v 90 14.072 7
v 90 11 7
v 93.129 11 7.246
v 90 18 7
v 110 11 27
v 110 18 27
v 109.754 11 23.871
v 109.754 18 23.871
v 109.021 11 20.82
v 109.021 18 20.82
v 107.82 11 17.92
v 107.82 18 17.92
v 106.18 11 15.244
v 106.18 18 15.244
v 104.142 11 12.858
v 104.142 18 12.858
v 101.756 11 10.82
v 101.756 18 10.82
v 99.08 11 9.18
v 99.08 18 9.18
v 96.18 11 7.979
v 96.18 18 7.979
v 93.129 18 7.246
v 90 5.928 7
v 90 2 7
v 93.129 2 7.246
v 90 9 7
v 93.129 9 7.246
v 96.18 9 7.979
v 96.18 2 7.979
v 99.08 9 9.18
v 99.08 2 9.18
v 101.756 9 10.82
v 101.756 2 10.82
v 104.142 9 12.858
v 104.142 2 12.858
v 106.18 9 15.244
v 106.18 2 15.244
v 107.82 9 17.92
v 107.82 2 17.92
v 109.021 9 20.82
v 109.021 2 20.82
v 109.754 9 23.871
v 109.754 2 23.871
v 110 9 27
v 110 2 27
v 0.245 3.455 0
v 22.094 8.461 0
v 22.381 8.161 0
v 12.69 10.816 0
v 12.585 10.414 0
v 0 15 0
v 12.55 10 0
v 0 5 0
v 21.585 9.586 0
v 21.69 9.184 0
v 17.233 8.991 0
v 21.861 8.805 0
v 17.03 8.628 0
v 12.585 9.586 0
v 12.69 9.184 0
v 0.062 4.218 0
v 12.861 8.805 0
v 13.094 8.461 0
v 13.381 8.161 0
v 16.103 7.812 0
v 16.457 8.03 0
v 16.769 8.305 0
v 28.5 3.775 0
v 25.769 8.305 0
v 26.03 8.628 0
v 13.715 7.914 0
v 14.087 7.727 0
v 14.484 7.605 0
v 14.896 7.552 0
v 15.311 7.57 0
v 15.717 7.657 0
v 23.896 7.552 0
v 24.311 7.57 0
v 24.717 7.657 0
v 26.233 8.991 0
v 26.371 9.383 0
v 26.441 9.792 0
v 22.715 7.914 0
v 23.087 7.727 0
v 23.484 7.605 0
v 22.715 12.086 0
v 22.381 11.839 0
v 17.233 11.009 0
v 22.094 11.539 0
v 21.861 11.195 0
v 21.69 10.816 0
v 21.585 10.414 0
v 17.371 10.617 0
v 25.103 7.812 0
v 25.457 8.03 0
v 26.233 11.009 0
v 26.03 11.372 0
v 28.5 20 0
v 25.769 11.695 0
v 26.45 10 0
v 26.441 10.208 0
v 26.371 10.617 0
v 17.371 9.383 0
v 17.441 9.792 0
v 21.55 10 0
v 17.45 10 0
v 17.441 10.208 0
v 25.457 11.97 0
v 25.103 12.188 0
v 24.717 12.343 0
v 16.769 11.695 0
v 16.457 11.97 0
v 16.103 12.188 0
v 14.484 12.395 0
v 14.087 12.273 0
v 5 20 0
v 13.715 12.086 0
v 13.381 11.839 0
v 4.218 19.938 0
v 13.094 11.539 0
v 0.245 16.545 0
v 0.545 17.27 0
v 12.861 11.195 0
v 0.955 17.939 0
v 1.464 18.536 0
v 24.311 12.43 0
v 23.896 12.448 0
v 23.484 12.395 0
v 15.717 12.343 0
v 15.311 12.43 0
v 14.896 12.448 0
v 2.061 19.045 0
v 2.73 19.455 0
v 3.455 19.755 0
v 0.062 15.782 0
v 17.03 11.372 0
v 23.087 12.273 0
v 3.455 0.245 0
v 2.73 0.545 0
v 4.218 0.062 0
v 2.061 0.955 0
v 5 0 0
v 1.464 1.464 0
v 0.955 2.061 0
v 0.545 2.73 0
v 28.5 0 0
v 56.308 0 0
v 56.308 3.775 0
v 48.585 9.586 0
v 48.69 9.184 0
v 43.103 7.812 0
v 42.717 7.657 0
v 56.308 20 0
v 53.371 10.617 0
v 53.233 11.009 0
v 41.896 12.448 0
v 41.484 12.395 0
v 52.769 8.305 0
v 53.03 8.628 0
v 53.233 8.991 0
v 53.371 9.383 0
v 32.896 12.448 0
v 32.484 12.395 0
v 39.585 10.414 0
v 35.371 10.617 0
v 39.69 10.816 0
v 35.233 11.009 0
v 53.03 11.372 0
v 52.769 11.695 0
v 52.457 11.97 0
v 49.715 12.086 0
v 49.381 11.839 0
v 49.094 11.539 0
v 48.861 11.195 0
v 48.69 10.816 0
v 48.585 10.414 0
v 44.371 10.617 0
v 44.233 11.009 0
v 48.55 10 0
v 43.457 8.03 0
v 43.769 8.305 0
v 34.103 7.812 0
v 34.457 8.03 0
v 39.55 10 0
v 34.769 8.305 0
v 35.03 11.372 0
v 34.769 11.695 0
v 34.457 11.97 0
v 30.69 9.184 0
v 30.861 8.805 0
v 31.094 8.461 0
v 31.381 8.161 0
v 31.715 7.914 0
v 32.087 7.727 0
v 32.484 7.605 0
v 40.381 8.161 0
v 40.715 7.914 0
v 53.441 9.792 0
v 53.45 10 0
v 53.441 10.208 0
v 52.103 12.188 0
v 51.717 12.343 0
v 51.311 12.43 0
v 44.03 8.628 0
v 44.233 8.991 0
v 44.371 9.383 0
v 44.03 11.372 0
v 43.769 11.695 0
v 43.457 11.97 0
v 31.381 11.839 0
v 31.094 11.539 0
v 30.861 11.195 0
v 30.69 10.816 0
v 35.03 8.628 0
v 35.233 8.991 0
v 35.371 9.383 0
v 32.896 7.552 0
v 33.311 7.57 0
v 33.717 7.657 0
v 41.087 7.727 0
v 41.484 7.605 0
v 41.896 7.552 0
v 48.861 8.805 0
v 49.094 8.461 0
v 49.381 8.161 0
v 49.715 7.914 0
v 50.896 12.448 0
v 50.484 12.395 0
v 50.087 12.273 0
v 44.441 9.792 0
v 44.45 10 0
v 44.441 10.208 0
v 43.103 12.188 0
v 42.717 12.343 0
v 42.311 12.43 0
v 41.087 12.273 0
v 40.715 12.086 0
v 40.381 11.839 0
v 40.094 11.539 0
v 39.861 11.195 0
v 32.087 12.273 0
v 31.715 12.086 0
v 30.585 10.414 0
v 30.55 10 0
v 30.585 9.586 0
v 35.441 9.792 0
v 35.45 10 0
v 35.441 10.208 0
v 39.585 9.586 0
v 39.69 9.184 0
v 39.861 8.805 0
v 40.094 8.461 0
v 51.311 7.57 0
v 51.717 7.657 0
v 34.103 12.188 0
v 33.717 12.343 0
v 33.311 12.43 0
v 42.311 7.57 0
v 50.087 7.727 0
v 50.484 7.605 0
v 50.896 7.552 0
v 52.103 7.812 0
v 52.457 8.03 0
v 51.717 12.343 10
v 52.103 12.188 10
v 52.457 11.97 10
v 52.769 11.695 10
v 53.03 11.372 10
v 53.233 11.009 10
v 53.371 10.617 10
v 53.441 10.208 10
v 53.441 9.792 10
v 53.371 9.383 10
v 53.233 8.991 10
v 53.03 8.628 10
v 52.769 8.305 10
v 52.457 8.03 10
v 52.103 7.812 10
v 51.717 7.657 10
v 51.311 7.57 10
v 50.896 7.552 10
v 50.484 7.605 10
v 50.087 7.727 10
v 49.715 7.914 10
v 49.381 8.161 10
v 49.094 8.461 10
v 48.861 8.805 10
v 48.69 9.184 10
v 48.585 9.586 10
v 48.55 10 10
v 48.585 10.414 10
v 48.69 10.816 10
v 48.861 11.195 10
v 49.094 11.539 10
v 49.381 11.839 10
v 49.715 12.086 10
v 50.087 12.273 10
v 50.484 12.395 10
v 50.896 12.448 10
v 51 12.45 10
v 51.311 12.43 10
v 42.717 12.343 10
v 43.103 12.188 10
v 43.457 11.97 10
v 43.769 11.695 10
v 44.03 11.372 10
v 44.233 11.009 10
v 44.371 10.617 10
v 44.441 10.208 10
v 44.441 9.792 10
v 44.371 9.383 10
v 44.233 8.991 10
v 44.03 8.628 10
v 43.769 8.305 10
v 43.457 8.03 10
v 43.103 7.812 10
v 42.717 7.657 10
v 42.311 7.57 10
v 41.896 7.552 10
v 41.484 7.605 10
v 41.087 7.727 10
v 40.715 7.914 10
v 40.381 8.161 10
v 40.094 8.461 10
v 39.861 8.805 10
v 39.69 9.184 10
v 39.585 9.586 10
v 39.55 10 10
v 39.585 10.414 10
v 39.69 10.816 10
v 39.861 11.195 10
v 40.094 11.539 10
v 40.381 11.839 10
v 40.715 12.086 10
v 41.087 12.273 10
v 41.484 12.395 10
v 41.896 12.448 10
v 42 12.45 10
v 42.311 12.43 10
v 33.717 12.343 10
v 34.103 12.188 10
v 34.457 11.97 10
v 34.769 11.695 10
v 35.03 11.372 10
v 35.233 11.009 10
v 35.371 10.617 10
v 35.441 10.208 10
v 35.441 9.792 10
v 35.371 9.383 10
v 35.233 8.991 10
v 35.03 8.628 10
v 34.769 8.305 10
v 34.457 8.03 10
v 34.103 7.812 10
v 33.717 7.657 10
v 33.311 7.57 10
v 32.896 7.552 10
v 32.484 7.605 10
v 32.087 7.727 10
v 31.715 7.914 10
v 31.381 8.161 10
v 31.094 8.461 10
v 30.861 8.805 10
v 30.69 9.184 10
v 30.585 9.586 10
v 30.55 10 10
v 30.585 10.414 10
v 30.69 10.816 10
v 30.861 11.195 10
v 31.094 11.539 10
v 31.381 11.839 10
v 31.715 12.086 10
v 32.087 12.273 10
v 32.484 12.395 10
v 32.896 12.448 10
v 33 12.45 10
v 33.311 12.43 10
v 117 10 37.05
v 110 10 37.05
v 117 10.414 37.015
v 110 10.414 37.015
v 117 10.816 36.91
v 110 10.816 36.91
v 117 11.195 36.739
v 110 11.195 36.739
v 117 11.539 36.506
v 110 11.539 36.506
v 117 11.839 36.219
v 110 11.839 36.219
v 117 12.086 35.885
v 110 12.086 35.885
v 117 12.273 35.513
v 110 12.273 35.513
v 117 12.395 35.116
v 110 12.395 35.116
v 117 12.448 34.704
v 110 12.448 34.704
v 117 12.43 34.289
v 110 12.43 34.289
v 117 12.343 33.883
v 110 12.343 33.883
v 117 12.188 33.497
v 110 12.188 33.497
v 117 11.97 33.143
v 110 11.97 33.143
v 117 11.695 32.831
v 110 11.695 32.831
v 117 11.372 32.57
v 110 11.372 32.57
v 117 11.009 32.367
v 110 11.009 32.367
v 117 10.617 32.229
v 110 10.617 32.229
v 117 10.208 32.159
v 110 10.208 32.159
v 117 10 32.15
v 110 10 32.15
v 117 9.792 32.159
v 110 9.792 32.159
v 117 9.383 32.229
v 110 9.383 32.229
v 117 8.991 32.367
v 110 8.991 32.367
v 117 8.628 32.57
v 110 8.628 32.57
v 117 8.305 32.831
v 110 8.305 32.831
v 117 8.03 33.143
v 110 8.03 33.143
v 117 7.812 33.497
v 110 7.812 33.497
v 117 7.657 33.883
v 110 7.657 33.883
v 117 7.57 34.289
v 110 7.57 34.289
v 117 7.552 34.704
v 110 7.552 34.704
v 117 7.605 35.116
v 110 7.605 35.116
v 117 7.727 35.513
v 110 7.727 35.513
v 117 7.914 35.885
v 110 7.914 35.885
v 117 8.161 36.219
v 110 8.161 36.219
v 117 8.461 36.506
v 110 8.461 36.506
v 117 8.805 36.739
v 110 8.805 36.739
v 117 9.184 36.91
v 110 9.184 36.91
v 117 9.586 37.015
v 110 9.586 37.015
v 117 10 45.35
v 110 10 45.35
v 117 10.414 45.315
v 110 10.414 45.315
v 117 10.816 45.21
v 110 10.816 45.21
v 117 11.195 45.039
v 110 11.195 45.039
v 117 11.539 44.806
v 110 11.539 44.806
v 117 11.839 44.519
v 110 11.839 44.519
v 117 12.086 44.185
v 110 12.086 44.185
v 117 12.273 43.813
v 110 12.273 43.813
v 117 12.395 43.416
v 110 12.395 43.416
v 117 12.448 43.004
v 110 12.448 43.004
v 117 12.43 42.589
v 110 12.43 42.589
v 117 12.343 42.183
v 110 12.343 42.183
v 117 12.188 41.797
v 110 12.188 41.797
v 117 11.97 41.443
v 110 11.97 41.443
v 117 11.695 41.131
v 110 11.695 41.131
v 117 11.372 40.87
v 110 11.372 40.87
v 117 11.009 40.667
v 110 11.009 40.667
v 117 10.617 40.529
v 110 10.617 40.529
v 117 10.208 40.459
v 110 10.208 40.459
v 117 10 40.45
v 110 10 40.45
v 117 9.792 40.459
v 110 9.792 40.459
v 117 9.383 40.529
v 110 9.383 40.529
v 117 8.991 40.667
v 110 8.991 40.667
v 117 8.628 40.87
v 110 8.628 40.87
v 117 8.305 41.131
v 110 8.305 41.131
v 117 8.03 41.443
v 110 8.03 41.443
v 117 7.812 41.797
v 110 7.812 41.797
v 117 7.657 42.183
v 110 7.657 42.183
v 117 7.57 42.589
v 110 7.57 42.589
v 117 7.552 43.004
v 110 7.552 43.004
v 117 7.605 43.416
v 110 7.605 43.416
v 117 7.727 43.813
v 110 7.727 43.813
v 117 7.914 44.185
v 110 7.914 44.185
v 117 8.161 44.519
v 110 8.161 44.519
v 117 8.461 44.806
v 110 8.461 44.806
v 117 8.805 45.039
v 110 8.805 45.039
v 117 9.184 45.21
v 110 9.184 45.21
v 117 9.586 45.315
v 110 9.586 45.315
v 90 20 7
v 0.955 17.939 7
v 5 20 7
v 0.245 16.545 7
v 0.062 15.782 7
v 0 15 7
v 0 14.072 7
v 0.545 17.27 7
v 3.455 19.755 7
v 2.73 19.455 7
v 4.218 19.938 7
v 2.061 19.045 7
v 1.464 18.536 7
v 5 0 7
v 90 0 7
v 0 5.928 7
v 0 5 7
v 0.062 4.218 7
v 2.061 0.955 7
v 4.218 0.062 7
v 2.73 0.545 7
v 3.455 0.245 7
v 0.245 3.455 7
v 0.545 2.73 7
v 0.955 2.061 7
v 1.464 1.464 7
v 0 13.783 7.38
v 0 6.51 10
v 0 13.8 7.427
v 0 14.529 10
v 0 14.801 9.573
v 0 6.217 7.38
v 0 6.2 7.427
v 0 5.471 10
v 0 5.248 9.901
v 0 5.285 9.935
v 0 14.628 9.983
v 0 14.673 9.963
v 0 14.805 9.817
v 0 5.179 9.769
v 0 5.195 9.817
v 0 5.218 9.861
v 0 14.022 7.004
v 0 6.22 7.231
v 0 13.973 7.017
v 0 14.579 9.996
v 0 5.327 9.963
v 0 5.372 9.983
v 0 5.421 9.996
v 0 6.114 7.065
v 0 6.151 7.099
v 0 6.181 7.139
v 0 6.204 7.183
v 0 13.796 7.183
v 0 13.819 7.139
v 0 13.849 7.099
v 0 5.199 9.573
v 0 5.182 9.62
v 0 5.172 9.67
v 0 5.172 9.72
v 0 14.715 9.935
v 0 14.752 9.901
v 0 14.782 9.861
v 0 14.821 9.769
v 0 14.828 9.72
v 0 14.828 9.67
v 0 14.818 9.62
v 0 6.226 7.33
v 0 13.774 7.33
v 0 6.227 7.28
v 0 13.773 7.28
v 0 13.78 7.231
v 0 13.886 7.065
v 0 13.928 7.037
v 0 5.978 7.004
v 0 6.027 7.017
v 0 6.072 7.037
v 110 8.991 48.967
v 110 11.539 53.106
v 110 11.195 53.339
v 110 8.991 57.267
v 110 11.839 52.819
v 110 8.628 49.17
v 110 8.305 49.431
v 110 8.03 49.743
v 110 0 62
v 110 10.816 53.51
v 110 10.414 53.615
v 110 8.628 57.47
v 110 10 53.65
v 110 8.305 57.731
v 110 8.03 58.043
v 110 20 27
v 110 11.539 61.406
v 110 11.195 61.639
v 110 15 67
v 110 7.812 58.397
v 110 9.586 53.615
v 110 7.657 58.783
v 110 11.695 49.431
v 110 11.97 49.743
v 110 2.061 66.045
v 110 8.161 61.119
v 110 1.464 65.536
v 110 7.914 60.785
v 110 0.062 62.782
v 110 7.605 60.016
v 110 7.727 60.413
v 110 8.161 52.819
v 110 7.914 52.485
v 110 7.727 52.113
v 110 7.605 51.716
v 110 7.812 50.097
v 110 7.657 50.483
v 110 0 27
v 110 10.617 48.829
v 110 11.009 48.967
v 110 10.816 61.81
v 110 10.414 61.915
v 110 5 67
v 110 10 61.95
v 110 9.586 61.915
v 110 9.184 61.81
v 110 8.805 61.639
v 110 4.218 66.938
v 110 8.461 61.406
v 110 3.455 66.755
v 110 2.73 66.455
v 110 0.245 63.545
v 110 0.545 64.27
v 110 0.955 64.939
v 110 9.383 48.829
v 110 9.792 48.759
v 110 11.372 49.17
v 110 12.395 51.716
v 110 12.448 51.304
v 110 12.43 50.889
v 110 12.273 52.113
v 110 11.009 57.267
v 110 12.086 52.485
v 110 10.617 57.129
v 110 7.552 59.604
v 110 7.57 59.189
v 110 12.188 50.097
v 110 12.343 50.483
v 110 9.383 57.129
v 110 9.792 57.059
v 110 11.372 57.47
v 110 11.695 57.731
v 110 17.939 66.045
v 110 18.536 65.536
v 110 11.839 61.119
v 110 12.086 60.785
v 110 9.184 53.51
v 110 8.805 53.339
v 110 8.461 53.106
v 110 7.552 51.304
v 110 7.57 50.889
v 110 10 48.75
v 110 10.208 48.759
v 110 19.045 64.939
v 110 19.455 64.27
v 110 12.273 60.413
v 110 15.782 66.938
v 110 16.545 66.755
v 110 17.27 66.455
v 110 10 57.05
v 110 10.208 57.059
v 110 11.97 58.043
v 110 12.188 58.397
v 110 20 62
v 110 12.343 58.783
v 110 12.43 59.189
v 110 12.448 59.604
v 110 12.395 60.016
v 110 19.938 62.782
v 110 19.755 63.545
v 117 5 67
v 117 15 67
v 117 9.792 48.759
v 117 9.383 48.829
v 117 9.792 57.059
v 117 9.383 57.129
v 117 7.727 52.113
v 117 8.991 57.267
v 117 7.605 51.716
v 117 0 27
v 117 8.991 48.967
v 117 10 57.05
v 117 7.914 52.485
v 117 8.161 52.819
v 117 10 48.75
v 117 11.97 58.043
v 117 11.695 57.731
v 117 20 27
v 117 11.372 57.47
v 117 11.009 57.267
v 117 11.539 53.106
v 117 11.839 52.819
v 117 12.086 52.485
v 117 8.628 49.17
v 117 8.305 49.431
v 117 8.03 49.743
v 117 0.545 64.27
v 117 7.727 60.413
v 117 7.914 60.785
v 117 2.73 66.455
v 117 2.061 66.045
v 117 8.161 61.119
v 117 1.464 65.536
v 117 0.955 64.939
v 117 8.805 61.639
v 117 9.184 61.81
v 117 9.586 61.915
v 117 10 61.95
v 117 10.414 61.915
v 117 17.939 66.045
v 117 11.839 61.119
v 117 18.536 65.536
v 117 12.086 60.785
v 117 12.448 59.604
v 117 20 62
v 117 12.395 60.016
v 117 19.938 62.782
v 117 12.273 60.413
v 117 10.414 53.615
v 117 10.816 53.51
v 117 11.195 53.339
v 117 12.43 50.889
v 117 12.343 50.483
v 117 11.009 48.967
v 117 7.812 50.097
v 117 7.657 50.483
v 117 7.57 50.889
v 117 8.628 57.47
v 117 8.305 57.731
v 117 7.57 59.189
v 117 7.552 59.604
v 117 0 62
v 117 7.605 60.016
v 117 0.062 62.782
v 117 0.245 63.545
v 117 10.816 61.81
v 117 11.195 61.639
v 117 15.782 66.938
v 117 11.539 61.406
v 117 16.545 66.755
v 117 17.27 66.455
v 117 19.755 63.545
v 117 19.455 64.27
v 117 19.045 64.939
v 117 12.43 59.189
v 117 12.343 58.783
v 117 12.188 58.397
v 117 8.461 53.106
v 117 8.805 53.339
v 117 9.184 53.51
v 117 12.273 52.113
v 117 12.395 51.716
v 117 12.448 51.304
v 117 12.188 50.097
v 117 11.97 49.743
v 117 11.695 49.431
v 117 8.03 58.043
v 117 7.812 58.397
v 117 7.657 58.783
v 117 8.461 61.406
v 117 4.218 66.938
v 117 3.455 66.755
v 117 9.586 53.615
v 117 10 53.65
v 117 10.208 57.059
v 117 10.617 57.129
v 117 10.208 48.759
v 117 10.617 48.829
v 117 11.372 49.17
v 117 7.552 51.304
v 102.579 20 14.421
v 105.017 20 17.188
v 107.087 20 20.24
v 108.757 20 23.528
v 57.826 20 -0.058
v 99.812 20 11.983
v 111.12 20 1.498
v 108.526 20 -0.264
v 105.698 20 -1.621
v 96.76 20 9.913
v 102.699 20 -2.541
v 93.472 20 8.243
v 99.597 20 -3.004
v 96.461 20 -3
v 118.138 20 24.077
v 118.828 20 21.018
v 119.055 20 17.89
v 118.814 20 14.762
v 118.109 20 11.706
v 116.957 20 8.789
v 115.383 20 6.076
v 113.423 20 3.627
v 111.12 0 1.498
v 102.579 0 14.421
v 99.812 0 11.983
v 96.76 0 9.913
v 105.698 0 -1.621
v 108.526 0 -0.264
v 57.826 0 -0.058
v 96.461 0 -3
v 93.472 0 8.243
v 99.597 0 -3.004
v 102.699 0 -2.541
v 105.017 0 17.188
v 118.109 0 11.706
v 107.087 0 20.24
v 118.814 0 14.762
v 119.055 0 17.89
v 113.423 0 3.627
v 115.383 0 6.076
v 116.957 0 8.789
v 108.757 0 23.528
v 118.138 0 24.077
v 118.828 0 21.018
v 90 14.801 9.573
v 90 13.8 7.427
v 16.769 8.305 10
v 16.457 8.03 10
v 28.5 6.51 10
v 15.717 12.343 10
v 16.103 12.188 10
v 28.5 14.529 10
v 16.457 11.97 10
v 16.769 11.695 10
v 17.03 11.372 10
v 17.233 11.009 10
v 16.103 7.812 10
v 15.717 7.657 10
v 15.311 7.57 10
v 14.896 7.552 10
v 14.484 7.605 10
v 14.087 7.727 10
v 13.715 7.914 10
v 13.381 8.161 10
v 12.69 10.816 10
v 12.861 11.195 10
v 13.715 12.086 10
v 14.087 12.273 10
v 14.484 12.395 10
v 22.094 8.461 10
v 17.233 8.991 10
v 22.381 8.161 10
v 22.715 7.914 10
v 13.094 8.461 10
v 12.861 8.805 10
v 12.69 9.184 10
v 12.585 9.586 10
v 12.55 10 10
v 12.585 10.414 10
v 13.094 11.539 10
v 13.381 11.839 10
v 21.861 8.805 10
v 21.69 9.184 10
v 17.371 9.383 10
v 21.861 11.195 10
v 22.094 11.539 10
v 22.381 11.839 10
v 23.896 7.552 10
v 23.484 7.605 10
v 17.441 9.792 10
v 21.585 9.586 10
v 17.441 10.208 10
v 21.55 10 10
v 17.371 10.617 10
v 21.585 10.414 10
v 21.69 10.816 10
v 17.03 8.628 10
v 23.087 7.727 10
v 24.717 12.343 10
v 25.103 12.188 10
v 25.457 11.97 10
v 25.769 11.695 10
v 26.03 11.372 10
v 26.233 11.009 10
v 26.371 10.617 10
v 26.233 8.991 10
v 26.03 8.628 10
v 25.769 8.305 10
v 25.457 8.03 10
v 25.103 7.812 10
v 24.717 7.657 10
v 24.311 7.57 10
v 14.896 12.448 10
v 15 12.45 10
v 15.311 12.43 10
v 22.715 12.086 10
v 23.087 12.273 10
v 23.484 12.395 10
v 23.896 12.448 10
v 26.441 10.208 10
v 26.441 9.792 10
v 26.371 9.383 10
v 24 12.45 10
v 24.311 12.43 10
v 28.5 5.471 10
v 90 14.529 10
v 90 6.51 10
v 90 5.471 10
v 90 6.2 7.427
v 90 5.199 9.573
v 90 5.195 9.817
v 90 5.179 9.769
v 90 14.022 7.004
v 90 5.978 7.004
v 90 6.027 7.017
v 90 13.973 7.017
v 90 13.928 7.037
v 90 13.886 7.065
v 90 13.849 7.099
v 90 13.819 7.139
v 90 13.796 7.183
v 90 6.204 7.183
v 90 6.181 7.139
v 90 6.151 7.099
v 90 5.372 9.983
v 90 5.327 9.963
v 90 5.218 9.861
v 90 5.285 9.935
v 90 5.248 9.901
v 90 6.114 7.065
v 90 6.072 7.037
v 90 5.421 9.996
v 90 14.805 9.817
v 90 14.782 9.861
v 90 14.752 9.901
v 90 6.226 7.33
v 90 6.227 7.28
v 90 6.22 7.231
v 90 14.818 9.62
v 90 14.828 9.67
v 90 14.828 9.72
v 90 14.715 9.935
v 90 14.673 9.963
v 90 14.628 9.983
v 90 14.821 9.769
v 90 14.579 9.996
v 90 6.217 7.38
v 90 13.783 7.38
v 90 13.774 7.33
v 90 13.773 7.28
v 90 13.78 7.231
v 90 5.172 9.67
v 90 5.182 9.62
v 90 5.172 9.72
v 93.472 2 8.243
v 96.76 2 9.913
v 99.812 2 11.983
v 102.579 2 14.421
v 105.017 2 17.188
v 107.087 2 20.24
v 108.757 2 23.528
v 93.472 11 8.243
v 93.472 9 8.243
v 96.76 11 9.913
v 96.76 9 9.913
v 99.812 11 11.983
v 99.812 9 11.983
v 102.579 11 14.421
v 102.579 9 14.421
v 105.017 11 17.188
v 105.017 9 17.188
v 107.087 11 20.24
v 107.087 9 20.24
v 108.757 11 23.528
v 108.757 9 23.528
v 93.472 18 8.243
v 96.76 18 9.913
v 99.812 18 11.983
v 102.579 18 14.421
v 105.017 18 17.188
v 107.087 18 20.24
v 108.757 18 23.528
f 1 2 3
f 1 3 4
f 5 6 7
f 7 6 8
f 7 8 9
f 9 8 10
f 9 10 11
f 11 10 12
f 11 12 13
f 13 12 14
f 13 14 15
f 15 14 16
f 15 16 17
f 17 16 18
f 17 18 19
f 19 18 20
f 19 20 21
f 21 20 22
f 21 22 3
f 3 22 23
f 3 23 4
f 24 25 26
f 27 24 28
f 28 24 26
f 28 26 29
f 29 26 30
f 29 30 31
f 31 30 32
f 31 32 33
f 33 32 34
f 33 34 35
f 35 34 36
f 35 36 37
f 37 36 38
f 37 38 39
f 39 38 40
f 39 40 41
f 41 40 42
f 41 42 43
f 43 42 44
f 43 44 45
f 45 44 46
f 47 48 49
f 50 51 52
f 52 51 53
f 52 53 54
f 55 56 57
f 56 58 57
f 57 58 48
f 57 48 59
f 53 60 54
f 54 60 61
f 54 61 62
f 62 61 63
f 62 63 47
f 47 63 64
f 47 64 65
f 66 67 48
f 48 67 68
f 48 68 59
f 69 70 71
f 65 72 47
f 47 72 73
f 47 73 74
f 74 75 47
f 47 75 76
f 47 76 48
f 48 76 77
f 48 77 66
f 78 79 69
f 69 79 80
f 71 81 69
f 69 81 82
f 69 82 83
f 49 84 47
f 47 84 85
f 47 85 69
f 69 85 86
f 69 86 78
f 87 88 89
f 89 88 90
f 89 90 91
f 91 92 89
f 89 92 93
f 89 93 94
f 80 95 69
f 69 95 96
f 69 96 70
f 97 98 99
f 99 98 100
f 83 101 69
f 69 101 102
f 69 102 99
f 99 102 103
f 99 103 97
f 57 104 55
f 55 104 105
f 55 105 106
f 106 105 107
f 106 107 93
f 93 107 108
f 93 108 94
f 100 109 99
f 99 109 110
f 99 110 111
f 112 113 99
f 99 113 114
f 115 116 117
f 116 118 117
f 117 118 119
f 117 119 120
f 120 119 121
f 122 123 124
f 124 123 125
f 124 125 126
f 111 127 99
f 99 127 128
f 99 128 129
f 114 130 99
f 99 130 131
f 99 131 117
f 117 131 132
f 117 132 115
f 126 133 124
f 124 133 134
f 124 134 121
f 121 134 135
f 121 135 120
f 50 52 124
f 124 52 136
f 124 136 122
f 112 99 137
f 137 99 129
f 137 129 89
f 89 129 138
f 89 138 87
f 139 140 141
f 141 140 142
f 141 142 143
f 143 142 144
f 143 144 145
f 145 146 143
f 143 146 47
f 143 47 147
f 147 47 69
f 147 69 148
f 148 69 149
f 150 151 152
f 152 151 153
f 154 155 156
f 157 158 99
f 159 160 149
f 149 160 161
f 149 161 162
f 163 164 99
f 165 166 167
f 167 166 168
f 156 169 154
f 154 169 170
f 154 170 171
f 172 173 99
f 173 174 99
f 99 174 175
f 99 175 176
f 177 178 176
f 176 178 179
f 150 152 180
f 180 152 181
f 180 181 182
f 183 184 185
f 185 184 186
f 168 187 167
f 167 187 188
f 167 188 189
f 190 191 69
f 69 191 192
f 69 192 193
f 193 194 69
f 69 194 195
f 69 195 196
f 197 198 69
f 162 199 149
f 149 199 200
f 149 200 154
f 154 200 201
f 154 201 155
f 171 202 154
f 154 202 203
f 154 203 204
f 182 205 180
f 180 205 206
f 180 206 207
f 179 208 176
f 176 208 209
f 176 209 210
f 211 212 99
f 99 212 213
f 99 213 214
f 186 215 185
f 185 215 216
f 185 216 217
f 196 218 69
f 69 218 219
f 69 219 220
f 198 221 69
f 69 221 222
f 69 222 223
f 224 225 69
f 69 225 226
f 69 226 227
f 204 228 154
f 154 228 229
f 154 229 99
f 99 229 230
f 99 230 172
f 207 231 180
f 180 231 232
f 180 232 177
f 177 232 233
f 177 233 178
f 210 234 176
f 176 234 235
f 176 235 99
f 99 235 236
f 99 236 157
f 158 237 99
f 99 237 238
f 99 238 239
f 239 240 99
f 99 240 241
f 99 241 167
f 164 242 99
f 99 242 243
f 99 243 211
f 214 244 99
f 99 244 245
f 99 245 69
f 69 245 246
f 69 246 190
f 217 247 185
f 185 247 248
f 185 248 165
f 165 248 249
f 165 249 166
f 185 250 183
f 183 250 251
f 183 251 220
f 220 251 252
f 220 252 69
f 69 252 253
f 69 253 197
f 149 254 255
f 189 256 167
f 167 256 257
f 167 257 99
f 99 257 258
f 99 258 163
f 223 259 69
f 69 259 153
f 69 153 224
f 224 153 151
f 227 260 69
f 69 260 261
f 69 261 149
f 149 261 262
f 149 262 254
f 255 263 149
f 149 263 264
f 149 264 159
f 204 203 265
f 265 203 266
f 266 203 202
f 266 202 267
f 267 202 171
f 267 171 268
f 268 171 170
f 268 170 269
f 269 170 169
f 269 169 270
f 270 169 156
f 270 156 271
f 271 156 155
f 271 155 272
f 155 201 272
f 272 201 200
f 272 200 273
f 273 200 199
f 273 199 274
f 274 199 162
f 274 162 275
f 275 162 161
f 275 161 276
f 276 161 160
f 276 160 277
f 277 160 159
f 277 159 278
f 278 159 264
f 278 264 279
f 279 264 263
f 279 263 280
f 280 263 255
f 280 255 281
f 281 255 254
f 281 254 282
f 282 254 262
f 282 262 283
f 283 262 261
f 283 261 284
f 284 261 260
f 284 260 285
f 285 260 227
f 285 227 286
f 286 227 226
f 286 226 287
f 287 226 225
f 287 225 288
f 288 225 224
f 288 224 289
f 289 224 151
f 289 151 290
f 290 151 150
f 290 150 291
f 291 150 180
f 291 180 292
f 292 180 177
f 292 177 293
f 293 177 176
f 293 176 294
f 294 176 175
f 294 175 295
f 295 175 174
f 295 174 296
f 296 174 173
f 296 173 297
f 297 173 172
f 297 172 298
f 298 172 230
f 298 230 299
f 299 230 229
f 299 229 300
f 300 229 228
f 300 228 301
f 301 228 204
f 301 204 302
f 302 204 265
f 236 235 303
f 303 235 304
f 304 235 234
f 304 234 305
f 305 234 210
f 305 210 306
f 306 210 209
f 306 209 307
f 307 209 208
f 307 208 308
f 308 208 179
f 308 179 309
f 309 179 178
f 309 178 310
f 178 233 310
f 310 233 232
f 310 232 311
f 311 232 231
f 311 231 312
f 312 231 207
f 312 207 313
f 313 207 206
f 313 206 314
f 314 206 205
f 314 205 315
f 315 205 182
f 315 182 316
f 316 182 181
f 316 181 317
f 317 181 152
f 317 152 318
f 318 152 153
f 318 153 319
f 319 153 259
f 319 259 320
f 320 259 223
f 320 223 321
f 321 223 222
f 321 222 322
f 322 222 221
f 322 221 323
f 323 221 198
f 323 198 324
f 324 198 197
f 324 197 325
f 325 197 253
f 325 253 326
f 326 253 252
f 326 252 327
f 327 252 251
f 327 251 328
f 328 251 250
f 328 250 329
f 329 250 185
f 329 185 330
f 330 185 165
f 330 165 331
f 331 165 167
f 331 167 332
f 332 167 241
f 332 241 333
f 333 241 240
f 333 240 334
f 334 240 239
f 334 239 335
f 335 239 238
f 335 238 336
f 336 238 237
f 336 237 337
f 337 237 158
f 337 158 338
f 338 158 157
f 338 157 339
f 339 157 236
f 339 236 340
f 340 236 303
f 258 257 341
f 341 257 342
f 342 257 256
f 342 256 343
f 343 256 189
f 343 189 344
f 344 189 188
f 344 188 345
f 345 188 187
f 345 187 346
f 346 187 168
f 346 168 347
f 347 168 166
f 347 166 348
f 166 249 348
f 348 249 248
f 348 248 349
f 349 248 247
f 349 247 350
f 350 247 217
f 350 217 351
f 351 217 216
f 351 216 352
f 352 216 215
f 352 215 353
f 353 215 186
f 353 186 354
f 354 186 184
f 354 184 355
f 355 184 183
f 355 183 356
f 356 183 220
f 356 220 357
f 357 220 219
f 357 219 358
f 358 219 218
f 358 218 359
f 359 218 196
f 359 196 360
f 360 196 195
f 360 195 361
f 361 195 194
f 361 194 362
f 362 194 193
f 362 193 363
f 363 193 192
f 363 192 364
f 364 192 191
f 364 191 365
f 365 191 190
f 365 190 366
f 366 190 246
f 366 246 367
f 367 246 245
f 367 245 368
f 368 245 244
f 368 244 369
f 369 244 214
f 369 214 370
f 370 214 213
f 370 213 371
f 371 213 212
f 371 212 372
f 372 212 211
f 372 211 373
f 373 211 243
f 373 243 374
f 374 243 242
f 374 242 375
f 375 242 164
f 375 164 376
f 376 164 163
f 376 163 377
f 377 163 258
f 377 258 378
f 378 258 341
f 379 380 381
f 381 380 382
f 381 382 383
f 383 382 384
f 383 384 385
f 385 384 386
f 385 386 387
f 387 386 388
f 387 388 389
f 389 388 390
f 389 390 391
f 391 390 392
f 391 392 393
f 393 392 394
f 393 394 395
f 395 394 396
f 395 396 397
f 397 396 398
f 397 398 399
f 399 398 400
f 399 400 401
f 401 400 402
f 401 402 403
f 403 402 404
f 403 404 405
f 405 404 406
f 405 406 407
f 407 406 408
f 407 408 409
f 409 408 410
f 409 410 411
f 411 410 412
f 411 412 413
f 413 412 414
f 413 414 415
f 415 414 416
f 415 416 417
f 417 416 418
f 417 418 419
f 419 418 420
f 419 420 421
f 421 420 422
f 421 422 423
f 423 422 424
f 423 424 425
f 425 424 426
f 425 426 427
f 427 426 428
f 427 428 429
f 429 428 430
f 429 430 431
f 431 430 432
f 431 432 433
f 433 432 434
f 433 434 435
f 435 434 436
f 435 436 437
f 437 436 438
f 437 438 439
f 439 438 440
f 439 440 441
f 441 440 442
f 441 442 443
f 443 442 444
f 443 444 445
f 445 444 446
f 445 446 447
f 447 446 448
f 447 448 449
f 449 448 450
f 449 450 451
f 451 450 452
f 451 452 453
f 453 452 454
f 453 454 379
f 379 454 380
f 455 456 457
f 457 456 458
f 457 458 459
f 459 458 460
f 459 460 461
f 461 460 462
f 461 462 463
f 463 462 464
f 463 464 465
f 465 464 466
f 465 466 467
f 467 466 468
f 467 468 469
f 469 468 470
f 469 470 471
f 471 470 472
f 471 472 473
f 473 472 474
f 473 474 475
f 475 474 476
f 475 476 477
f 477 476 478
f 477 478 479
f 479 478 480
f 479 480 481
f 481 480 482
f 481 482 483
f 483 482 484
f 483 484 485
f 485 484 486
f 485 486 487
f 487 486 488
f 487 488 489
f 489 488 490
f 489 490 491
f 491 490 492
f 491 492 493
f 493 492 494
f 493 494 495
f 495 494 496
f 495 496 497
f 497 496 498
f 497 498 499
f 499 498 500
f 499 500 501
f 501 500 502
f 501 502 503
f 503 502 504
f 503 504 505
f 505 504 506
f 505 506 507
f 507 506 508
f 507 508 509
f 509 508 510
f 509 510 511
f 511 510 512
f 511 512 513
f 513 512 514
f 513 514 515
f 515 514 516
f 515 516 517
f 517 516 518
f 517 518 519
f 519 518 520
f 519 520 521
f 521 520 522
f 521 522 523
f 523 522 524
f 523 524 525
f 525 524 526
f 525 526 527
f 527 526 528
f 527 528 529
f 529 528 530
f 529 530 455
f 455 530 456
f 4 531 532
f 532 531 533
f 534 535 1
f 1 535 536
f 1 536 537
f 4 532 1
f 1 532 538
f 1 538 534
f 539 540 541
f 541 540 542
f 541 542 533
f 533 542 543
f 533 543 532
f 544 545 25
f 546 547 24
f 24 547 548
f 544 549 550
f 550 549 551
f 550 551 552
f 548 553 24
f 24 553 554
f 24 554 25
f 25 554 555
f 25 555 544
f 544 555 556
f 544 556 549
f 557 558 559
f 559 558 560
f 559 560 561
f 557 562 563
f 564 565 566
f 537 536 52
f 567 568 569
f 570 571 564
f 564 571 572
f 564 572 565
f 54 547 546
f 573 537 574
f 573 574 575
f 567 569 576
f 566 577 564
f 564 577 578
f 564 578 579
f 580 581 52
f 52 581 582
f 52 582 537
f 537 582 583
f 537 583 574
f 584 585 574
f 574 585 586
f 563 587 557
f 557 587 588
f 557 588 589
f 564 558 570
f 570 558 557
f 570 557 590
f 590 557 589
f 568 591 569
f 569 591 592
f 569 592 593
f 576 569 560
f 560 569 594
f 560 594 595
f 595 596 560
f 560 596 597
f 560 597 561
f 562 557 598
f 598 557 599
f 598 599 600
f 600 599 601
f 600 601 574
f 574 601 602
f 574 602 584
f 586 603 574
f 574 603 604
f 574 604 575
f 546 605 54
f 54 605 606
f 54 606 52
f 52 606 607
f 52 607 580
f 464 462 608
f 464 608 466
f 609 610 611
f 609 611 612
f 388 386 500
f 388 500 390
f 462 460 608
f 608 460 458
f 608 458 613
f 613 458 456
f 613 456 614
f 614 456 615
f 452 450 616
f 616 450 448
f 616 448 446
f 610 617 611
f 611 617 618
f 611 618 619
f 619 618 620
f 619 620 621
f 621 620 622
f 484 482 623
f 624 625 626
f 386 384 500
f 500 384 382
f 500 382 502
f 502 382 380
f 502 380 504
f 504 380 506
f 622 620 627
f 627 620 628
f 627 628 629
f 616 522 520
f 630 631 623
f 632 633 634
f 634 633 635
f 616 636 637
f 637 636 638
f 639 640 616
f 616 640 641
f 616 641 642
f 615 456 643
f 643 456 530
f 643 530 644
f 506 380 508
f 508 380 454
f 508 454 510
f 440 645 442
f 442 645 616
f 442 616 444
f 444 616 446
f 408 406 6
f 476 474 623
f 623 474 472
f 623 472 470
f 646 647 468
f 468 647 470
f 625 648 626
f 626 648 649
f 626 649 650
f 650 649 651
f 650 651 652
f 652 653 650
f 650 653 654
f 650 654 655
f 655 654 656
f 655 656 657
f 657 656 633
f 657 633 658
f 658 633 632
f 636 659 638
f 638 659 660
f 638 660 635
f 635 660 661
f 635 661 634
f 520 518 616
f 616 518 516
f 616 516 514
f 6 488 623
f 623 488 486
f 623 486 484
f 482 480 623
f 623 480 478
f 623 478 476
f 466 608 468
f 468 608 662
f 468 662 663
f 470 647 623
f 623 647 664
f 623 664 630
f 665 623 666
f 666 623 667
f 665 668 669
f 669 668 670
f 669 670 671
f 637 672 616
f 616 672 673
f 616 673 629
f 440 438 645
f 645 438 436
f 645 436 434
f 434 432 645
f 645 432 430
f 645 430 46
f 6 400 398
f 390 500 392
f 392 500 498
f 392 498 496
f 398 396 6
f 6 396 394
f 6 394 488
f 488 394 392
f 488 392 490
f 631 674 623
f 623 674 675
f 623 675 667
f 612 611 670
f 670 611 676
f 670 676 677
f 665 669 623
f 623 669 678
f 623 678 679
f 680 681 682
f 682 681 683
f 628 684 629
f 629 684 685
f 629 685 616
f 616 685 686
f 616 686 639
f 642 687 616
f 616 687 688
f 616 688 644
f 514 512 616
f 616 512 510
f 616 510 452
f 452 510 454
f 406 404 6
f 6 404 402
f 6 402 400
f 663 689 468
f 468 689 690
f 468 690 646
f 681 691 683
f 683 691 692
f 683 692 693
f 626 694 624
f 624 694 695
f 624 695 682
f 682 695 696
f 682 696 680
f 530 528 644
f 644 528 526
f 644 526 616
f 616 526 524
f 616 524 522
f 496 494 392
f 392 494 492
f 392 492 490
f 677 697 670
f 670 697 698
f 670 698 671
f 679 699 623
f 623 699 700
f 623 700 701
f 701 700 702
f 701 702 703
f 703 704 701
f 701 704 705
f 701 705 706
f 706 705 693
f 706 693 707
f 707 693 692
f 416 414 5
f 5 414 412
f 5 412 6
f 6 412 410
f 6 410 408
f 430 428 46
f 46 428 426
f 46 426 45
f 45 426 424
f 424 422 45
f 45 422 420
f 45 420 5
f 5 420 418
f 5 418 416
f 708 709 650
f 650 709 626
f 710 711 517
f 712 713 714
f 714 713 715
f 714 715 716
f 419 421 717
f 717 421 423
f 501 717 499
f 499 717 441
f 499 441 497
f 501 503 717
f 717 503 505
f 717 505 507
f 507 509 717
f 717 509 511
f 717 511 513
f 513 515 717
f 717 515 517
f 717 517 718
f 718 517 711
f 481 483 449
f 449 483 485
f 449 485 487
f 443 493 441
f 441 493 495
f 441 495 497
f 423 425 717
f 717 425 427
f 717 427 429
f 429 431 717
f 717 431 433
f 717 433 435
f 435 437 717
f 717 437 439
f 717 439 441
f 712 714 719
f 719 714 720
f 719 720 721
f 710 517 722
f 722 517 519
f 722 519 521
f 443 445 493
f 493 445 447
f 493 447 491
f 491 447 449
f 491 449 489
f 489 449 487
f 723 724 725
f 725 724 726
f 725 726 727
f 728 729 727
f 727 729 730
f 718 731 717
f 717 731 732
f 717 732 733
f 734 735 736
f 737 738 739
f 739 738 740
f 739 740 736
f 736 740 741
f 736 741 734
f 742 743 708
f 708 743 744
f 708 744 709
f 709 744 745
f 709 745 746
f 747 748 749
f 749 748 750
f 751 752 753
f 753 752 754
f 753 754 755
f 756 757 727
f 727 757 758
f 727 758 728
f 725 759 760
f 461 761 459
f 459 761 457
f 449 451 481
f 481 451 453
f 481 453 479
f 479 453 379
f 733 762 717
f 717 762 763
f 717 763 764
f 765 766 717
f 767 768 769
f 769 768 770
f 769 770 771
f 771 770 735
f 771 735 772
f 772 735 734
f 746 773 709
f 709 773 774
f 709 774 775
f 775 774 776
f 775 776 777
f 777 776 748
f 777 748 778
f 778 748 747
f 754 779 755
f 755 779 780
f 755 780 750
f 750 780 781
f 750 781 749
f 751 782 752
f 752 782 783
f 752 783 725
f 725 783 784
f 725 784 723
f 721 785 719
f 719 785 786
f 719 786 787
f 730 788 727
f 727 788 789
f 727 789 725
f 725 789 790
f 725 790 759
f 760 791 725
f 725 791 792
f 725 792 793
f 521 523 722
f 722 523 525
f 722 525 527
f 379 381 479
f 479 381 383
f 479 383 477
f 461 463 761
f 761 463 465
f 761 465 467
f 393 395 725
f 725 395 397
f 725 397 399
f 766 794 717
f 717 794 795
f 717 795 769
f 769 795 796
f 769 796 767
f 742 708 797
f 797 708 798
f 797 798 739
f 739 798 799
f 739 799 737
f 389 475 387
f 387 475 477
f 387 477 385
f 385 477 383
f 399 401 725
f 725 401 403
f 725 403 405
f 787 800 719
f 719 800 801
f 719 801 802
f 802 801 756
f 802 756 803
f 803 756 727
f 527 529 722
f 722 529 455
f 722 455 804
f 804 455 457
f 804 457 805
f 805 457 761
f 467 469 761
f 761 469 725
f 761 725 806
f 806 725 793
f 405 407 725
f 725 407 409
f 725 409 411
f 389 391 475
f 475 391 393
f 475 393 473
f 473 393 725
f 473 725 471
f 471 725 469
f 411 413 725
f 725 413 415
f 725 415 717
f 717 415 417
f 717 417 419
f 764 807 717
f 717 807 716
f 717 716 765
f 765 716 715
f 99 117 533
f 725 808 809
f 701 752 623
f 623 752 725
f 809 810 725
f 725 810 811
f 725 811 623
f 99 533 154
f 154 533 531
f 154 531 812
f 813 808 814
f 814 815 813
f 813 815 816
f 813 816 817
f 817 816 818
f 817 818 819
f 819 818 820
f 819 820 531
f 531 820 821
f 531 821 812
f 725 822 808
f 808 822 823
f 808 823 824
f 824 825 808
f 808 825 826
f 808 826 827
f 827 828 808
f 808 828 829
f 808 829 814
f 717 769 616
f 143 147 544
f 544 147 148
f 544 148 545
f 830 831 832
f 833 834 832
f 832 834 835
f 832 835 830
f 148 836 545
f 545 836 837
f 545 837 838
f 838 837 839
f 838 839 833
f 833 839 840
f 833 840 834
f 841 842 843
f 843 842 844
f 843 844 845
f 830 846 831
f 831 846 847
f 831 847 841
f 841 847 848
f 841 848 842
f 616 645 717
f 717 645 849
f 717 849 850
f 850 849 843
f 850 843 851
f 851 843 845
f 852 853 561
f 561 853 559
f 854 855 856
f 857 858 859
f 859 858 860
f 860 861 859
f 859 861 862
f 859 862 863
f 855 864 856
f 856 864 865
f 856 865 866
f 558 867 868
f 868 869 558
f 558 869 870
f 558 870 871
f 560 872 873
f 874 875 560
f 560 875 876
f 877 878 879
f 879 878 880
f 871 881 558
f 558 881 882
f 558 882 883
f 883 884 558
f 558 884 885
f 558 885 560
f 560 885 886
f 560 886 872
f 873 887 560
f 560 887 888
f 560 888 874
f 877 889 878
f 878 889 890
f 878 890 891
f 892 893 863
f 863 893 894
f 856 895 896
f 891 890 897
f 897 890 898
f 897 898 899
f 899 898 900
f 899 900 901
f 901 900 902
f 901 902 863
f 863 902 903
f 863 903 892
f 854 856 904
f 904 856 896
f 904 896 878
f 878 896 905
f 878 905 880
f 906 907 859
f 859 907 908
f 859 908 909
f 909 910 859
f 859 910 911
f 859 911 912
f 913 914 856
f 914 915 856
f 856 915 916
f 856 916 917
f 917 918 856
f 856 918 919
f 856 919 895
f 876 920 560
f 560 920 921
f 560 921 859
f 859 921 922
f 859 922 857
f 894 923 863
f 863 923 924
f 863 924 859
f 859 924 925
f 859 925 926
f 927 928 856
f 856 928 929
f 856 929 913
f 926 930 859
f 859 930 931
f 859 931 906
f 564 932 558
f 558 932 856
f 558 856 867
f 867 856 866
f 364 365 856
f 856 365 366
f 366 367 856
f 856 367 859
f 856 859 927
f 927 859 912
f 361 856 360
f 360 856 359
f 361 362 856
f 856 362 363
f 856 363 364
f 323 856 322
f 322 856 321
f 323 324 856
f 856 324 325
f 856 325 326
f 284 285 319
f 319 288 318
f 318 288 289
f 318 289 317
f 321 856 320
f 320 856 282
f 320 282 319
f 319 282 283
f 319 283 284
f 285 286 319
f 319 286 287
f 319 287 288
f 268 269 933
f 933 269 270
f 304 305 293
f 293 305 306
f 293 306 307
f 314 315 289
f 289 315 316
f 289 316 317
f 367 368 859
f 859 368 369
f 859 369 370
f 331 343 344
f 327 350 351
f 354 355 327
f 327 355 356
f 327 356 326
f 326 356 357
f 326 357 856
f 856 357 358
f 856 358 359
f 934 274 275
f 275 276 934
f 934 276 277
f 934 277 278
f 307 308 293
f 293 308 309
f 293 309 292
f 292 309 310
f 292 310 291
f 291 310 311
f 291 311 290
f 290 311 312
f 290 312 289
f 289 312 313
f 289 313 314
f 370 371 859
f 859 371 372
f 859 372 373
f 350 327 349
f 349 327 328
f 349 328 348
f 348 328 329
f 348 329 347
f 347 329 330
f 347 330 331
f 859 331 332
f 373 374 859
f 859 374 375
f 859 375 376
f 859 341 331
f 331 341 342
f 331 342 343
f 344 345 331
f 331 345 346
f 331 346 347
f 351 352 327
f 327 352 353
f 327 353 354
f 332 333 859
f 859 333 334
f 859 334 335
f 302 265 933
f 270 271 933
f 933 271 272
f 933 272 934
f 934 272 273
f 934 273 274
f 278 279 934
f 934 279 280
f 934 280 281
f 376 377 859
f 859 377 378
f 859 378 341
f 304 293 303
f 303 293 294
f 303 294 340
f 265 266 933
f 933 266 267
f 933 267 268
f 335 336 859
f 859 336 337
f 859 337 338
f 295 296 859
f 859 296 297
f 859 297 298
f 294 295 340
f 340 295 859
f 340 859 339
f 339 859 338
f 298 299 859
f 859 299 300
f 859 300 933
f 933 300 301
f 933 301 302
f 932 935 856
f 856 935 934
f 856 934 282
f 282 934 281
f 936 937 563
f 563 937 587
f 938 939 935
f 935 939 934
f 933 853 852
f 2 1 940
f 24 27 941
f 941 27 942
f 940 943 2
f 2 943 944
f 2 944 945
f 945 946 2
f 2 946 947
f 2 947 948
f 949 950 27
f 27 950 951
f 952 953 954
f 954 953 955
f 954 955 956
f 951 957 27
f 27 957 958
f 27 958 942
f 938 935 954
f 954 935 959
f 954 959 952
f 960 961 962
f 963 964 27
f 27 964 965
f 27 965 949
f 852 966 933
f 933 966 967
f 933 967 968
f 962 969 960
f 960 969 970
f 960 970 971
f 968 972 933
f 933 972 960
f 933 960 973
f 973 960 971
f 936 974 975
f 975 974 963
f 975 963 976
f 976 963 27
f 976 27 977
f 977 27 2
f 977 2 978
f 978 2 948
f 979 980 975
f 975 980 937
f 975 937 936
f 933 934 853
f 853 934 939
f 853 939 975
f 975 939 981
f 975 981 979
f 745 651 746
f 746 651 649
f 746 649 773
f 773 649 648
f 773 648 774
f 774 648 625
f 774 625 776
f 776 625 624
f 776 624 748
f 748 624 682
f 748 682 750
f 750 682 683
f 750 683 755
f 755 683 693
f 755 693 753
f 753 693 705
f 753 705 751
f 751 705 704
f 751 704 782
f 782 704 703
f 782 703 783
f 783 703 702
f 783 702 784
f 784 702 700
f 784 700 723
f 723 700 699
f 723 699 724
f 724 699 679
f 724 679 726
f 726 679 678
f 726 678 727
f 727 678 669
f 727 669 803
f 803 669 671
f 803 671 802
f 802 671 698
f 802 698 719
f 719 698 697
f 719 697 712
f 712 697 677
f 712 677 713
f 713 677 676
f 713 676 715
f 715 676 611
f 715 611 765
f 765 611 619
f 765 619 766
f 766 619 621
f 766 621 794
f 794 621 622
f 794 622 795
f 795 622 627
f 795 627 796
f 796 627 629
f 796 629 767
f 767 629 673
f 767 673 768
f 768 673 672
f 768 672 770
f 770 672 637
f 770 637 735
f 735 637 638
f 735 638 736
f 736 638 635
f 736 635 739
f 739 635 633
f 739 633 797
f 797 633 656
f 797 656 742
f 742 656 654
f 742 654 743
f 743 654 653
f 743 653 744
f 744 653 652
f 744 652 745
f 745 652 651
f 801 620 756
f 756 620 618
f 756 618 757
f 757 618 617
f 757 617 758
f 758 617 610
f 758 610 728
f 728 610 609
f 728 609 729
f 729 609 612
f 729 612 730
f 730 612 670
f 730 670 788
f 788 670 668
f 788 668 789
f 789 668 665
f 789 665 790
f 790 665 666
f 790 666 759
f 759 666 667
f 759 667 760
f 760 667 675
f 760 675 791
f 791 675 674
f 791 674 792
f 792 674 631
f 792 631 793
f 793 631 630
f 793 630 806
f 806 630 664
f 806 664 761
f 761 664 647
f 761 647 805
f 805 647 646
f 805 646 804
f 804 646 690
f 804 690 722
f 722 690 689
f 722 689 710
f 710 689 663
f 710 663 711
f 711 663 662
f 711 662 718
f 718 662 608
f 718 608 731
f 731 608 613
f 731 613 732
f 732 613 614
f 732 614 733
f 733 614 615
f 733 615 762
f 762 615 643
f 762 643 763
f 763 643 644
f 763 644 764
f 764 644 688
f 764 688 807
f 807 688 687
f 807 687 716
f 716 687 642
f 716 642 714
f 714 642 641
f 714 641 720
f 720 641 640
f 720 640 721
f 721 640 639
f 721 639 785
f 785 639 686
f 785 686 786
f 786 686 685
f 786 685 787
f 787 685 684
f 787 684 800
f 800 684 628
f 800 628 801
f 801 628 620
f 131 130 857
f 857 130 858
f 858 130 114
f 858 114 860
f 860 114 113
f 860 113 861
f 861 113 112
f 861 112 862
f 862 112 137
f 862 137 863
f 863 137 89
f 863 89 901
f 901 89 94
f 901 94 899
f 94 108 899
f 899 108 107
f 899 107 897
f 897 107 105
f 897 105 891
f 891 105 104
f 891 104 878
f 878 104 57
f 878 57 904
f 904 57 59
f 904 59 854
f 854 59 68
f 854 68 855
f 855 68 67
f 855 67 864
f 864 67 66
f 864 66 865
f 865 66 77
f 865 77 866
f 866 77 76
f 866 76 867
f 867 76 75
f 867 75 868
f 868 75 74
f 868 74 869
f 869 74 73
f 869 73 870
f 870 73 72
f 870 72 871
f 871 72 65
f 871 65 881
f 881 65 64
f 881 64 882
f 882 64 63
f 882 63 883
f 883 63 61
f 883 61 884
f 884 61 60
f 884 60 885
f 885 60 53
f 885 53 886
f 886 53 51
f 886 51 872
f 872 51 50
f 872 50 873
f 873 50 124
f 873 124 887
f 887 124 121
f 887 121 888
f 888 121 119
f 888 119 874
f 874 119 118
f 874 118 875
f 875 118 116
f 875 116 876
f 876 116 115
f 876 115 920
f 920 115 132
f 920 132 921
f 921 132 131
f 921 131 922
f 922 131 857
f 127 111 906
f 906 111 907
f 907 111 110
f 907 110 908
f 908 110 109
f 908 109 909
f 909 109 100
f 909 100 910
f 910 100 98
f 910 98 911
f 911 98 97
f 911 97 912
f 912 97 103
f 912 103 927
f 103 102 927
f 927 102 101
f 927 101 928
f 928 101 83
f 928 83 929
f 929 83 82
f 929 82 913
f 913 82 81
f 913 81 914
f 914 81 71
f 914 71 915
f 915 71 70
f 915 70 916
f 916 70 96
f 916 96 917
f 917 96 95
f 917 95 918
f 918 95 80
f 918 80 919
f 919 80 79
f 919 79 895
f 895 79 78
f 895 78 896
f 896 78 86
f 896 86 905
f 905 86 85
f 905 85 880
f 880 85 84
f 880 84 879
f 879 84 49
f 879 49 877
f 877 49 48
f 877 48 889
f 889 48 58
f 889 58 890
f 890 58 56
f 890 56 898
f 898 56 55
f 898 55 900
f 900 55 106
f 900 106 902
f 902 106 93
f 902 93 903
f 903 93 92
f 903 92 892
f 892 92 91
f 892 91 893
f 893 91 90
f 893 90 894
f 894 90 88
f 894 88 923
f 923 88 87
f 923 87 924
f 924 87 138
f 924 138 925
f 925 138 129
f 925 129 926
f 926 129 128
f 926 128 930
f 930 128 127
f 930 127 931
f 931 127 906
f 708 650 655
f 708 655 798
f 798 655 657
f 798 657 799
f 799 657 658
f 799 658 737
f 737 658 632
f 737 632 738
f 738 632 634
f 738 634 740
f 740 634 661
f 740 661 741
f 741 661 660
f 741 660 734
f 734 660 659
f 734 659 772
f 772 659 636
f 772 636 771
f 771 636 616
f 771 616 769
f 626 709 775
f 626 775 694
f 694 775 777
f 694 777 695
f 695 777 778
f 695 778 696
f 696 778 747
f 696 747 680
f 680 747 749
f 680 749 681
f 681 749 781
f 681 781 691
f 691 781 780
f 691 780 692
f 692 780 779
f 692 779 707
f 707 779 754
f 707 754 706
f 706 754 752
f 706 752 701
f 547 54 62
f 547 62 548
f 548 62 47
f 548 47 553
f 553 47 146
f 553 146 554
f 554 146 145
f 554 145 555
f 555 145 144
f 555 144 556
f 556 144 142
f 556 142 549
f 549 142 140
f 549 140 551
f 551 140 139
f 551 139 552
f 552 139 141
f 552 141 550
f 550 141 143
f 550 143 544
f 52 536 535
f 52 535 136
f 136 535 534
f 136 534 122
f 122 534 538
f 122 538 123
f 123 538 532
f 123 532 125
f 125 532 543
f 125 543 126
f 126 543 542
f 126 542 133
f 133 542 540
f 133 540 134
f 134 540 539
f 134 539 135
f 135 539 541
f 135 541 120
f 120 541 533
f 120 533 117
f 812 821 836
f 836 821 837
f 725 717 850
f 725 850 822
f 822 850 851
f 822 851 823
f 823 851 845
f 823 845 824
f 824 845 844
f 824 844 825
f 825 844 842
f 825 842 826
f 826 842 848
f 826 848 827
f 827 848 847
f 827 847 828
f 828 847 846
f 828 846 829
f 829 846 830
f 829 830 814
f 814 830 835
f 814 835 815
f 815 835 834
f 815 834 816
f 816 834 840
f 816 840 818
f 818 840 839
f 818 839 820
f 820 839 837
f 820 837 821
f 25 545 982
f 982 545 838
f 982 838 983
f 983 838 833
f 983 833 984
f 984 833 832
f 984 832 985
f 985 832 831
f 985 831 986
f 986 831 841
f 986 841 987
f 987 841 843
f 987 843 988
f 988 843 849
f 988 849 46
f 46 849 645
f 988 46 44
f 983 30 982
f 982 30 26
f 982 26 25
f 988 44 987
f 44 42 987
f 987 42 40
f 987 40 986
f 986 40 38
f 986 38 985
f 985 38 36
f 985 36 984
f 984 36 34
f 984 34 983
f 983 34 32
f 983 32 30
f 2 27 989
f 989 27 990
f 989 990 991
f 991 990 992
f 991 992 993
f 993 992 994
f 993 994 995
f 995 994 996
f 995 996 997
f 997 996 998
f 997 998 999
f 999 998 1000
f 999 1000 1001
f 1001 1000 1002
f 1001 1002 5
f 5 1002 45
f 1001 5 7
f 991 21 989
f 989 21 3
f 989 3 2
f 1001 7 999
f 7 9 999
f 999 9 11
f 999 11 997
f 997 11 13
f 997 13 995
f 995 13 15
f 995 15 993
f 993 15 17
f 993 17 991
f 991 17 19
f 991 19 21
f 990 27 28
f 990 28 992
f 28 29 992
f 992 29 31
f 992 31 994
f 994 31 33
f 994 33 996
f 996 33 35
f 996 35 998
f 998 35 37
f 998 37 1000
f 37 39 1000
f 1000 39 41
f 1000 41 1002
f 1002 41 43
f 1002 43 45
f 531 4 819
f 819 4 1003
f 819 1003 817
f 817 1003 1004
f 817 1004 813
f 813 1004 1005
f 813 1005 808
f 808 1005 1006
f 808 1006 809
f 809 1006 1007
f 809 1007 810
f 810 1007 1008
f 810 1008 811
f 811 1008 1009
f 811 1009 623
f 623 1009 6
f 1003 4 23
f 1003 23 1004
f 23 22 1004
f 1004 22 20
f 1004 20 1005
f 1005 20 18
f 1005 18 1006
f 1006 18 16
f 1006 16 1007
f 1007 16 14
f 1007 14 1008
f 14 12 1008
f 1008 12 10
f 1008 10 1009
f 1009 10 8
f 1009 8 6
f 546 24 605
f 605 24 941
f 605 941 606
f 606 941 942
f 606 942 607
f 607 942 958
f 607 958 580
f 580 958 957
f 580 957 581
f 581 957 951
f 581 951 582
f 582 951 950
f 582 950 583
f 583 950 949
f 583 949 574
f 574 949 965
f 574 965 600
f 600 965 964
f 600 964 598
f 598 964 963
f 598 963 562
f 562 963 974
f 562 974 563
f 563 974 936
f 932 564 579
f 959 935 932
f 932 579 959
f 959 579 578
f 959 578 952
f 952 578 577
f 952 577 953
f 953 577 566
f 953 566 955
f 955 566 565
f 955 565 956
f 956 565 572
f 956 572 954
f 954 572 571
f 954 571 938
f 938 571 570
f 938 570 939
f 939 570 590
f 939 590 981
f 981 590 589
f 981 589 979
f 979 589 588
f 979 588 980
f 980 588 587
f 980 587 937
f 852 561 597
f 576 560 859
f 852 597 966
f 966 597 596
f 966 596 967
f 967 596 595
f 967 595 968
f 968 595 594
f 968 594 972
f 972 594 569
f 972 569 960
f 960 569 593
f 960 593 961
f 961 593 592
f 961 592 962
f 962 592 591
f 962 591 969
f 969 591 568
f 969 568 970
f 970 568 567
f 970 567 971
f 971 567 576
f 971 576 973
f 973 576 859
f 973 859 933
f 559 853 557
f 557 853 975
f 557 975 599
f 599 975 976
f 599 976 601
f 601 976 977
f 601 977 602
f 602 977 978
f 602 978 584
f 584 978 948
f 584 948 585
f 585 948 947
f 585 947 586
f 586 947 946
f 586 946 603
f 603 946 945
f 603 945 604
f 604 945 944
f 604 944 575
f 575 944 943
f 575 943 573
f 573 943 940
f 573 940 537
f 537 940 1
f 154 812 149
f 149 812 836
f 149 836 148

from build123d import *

# Parameters (mm, degrees)
BOSS_EXTRUDE1_DEPTH = 20
BOSS_EXTRUDE2_DEPTH = 90
SKETCH4_R           = 2.55
CUT_EXTRUDE1_DEPTH  = 137.301137193
LPATTERN1_COUNT     = 4
LPATTERN1_PITCH     = 8.3
SKETCH5_R           = 2.55
CUT_EXTRUDE2_DEPTH  = 14
LPATTERN2_COUNT     = 5
LPATTERN2_PITCH     = 9
FILLET2_R           = 5
BOSS_EXTRUDE4_DEPTH = 20
BOSS_EXTRUDE5_DEPTH = 2
LPATTERN3_COUNT     = 3
LPATTERN3_PITCH     = 9
FILLET3_R           = 0.3
FILLET4_R           = 20


with BuildPart() as part:
    # Sketch1 → Boss-Extrude1 (new body)
    with BuildSketch(Plane(origin=(0, 0, 0), x_dir=(1, 0, 0), z_dir=(0, 1, 0))):
        with BuildLine():
            Line((0, 0), (90, 0))
            ThreePointArc((90, 0), (109.091883092, -7.908116908), (117, -27))
            Line((117, -27), (117, -67))
            Line((117, -67), (110, -67))
            Line((110, -67), (110, -27))
            ThreePointArc((110, -27), (104.142135624, -12.857864376), (90, -7))
            Line((90, -7), (0, -7))
            Line((0, -7), (0, 0))
        make_face()
    extrude(amount=BOSS_EXTRUDE1_DEPTH)

    # Sketch2 → Boss-Extrude2 (add)
    with BuildSketch(Plane(origin=(0, 0, 0), x_dir=(0, 0, -1), z_dir=(1, 0, 0))):
        Polygon((-10, 15), (-10, 5), (-7, 6.398922974), (-7, 13.601077026), align=None)
    extrude(amount=BOSS_EXTRUDE2_DEPTH)

    # Sketch4 → Cut-Extrude1 (cut, through all)
    with BuildSketch(Plane(origin=(0, 0, 0), x_dir=(0, 0, -1), z_dir=(1, 0, 0))):
        with Locations(Location((-59.5, 10, 0), (0, 0, 180))):
            Circle(SKETCH4_R)
    cut_extrude1 = extrude(amount=CUT_EXTRUDE1_DEPTH, mode=Mode.SUBTRACT)

    # LPattern1: Cut-Extrude1 ×4
    with Locations(*[(0, 0, -i * LPATTERN1_PITCH) for i in range(1, LPATTERN1_COUNT)]):
        add(cut_extrude1, mode=Mode.SUBTRACT)

    # Sketch5 → Cut-Extrude2 (cut)
    with BuildSketch(Plane.XY):
        with Locations(Location((15, 10, 0), (0, 0, 90))):
            Circle(SKETCH5_R)
    cut_extrude2 = extrude(amount=CUT_EXTRUDE2_DEPTH, mode=Mode.SUBTRACT)

    # LPattern2: Cut-Extrude2 ×5
    with Locations(*[(i * LPATTERN2_PITCH, 0, 0) for i in range(1, LPATTERN2_COUNT)]):
        add(cut_extrude2, mode=Mode.SUBTRACT)

    # Fillet2
    fillet2_edges = [part.edges().sort_by_distance(p)[0] for p in [
        (0, 0, 3.5),
        (113.5, 20, 67),
        (0, 20, 3.5),
        (113.5, 0, 67),
    ]]
    fillet(fillet2_edges, radius=FILLET2_R)

    # Sketch6 → Boss-Extrude4 (add)
    with BuildSketch(Plane(origin=(0, 0, 0), x_dir=(1, 0, 0), z_dir=(0, 1, 0))):
        with BuildLine():
            Line((57.067989457, 0), (96.460545107, 3))
            ThreePointArc((96.460545107, 3), (115.383129249, -6.075834674), (117, -27))
            ThreePointArc((117, -27), (109.091883092, -7.908116908), (90, 0))
            Line((90, 0), (57.067989457, 0))
        make_face()
    extrude(amount=BOSS_EXTRUDE4_DEPTH)

    # Sketch8 → Boss-Extrude5 (add)
    with BuildSketch(Plane(origin=(0, 0, 0), x_dir=(1, 0, 0), z_dir=(0, 1, 0))):
        with BuildLine():
            ThreePointArc((90, -7), (102.578584062, -14.421415938), (110, -27))
            ThreePointArc((110, -27), (104.142135624, -12.857864376), (90, -7))
        make_face()
    boss_extrude5 = extrude(amount=BOSS_EXTRUDE5_DEPTH)

    # LPattern3: Boss-Extrude5 ×3
    with Locations(*[(0, i * LPATTERN3_PITCH, 0) for i in range(1, LPATTERN3_COUNT)]):
        add(boss_extrude5)

    # Fillet3
    fillet3_edges = [part.edges().sort_by_distance(p)[0] for p in [
        (45, 13.601077026, 7),
        (45, 15, 10),
        (45, 5, 10),
        (45, 6.398922974, 7),
    ]]
    fillet(fillet3_edges, radius=FILLET3_R)

    # Fillet4
    # the kernel refuses this fillet: 20 mm, written as the material it adds along each edge
    with BuildSketch(Plane(origin=(57.067989457, 0, 0), x_dir=(0.9971126456779296, 0, -0.07593663035162816), z_dir=(0, 1, 0))) as fillet4_piece_1:
        with BuildLine():
            CenterArc((FILLET4_R * 0.0380232084134, FILLET4_R), FILLET4_R, 265.644959248, 4.355040752)
            Line((-FILLET4_R * 0.0379134219382, FILLET4_R * 0.00288735432207), (0, 0))
            Line((0, 0), (FILLET4_R * 0.0380232084134, 0))
        make_face()
    extrude(amount=20)


solid = part.part
